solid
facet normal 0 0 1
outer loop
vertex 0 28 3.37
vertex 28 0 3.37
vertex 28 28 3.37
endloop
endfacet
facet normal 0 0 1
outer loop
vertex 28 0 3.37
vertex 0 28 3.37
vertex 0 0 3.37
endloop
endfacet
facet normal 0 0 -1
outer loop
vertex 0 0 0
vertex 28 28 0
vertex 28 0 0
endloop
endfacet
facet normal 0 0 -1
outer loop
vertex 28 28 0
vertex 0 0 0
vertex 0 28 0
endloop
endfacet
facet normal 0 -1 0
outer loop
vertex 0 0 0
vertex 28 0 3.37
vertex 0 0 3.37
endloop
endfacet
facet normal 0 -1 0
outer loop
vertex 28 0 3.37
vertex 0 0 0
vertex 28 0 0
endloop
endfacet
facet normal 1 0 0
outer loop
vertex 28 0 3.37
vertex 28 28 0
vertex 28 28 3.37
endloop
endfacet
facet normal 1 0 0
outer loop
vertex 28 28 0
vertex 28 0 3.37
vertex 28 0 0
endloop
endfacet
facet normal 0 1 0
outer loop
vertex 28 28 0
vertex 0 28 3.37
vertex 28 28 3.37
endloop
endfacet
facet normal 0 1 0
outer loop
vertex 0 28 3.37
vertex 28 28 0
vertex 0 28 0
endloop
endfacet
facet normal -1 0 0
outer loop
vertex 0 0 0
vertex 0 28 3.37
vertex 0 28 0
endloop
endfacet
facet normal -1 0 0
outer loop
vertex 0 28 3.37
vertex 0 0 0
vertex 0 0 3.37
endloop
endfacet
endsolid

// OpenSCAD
/* Warning, this is a very basic generator with a lot of approximation 
input data : [PQFP OR MQFP, KXB, 28x28x3.37mm, 208, , A, C04-21300A]
generated by com.zoubworld.electronics.cad.model3d.Basic
Date : Sun Feb 15 10:50:49 CET 2026
*/

//body
color("black")
translate([0,0,0])
cube([28.0,28.0,3.37], center=false);
